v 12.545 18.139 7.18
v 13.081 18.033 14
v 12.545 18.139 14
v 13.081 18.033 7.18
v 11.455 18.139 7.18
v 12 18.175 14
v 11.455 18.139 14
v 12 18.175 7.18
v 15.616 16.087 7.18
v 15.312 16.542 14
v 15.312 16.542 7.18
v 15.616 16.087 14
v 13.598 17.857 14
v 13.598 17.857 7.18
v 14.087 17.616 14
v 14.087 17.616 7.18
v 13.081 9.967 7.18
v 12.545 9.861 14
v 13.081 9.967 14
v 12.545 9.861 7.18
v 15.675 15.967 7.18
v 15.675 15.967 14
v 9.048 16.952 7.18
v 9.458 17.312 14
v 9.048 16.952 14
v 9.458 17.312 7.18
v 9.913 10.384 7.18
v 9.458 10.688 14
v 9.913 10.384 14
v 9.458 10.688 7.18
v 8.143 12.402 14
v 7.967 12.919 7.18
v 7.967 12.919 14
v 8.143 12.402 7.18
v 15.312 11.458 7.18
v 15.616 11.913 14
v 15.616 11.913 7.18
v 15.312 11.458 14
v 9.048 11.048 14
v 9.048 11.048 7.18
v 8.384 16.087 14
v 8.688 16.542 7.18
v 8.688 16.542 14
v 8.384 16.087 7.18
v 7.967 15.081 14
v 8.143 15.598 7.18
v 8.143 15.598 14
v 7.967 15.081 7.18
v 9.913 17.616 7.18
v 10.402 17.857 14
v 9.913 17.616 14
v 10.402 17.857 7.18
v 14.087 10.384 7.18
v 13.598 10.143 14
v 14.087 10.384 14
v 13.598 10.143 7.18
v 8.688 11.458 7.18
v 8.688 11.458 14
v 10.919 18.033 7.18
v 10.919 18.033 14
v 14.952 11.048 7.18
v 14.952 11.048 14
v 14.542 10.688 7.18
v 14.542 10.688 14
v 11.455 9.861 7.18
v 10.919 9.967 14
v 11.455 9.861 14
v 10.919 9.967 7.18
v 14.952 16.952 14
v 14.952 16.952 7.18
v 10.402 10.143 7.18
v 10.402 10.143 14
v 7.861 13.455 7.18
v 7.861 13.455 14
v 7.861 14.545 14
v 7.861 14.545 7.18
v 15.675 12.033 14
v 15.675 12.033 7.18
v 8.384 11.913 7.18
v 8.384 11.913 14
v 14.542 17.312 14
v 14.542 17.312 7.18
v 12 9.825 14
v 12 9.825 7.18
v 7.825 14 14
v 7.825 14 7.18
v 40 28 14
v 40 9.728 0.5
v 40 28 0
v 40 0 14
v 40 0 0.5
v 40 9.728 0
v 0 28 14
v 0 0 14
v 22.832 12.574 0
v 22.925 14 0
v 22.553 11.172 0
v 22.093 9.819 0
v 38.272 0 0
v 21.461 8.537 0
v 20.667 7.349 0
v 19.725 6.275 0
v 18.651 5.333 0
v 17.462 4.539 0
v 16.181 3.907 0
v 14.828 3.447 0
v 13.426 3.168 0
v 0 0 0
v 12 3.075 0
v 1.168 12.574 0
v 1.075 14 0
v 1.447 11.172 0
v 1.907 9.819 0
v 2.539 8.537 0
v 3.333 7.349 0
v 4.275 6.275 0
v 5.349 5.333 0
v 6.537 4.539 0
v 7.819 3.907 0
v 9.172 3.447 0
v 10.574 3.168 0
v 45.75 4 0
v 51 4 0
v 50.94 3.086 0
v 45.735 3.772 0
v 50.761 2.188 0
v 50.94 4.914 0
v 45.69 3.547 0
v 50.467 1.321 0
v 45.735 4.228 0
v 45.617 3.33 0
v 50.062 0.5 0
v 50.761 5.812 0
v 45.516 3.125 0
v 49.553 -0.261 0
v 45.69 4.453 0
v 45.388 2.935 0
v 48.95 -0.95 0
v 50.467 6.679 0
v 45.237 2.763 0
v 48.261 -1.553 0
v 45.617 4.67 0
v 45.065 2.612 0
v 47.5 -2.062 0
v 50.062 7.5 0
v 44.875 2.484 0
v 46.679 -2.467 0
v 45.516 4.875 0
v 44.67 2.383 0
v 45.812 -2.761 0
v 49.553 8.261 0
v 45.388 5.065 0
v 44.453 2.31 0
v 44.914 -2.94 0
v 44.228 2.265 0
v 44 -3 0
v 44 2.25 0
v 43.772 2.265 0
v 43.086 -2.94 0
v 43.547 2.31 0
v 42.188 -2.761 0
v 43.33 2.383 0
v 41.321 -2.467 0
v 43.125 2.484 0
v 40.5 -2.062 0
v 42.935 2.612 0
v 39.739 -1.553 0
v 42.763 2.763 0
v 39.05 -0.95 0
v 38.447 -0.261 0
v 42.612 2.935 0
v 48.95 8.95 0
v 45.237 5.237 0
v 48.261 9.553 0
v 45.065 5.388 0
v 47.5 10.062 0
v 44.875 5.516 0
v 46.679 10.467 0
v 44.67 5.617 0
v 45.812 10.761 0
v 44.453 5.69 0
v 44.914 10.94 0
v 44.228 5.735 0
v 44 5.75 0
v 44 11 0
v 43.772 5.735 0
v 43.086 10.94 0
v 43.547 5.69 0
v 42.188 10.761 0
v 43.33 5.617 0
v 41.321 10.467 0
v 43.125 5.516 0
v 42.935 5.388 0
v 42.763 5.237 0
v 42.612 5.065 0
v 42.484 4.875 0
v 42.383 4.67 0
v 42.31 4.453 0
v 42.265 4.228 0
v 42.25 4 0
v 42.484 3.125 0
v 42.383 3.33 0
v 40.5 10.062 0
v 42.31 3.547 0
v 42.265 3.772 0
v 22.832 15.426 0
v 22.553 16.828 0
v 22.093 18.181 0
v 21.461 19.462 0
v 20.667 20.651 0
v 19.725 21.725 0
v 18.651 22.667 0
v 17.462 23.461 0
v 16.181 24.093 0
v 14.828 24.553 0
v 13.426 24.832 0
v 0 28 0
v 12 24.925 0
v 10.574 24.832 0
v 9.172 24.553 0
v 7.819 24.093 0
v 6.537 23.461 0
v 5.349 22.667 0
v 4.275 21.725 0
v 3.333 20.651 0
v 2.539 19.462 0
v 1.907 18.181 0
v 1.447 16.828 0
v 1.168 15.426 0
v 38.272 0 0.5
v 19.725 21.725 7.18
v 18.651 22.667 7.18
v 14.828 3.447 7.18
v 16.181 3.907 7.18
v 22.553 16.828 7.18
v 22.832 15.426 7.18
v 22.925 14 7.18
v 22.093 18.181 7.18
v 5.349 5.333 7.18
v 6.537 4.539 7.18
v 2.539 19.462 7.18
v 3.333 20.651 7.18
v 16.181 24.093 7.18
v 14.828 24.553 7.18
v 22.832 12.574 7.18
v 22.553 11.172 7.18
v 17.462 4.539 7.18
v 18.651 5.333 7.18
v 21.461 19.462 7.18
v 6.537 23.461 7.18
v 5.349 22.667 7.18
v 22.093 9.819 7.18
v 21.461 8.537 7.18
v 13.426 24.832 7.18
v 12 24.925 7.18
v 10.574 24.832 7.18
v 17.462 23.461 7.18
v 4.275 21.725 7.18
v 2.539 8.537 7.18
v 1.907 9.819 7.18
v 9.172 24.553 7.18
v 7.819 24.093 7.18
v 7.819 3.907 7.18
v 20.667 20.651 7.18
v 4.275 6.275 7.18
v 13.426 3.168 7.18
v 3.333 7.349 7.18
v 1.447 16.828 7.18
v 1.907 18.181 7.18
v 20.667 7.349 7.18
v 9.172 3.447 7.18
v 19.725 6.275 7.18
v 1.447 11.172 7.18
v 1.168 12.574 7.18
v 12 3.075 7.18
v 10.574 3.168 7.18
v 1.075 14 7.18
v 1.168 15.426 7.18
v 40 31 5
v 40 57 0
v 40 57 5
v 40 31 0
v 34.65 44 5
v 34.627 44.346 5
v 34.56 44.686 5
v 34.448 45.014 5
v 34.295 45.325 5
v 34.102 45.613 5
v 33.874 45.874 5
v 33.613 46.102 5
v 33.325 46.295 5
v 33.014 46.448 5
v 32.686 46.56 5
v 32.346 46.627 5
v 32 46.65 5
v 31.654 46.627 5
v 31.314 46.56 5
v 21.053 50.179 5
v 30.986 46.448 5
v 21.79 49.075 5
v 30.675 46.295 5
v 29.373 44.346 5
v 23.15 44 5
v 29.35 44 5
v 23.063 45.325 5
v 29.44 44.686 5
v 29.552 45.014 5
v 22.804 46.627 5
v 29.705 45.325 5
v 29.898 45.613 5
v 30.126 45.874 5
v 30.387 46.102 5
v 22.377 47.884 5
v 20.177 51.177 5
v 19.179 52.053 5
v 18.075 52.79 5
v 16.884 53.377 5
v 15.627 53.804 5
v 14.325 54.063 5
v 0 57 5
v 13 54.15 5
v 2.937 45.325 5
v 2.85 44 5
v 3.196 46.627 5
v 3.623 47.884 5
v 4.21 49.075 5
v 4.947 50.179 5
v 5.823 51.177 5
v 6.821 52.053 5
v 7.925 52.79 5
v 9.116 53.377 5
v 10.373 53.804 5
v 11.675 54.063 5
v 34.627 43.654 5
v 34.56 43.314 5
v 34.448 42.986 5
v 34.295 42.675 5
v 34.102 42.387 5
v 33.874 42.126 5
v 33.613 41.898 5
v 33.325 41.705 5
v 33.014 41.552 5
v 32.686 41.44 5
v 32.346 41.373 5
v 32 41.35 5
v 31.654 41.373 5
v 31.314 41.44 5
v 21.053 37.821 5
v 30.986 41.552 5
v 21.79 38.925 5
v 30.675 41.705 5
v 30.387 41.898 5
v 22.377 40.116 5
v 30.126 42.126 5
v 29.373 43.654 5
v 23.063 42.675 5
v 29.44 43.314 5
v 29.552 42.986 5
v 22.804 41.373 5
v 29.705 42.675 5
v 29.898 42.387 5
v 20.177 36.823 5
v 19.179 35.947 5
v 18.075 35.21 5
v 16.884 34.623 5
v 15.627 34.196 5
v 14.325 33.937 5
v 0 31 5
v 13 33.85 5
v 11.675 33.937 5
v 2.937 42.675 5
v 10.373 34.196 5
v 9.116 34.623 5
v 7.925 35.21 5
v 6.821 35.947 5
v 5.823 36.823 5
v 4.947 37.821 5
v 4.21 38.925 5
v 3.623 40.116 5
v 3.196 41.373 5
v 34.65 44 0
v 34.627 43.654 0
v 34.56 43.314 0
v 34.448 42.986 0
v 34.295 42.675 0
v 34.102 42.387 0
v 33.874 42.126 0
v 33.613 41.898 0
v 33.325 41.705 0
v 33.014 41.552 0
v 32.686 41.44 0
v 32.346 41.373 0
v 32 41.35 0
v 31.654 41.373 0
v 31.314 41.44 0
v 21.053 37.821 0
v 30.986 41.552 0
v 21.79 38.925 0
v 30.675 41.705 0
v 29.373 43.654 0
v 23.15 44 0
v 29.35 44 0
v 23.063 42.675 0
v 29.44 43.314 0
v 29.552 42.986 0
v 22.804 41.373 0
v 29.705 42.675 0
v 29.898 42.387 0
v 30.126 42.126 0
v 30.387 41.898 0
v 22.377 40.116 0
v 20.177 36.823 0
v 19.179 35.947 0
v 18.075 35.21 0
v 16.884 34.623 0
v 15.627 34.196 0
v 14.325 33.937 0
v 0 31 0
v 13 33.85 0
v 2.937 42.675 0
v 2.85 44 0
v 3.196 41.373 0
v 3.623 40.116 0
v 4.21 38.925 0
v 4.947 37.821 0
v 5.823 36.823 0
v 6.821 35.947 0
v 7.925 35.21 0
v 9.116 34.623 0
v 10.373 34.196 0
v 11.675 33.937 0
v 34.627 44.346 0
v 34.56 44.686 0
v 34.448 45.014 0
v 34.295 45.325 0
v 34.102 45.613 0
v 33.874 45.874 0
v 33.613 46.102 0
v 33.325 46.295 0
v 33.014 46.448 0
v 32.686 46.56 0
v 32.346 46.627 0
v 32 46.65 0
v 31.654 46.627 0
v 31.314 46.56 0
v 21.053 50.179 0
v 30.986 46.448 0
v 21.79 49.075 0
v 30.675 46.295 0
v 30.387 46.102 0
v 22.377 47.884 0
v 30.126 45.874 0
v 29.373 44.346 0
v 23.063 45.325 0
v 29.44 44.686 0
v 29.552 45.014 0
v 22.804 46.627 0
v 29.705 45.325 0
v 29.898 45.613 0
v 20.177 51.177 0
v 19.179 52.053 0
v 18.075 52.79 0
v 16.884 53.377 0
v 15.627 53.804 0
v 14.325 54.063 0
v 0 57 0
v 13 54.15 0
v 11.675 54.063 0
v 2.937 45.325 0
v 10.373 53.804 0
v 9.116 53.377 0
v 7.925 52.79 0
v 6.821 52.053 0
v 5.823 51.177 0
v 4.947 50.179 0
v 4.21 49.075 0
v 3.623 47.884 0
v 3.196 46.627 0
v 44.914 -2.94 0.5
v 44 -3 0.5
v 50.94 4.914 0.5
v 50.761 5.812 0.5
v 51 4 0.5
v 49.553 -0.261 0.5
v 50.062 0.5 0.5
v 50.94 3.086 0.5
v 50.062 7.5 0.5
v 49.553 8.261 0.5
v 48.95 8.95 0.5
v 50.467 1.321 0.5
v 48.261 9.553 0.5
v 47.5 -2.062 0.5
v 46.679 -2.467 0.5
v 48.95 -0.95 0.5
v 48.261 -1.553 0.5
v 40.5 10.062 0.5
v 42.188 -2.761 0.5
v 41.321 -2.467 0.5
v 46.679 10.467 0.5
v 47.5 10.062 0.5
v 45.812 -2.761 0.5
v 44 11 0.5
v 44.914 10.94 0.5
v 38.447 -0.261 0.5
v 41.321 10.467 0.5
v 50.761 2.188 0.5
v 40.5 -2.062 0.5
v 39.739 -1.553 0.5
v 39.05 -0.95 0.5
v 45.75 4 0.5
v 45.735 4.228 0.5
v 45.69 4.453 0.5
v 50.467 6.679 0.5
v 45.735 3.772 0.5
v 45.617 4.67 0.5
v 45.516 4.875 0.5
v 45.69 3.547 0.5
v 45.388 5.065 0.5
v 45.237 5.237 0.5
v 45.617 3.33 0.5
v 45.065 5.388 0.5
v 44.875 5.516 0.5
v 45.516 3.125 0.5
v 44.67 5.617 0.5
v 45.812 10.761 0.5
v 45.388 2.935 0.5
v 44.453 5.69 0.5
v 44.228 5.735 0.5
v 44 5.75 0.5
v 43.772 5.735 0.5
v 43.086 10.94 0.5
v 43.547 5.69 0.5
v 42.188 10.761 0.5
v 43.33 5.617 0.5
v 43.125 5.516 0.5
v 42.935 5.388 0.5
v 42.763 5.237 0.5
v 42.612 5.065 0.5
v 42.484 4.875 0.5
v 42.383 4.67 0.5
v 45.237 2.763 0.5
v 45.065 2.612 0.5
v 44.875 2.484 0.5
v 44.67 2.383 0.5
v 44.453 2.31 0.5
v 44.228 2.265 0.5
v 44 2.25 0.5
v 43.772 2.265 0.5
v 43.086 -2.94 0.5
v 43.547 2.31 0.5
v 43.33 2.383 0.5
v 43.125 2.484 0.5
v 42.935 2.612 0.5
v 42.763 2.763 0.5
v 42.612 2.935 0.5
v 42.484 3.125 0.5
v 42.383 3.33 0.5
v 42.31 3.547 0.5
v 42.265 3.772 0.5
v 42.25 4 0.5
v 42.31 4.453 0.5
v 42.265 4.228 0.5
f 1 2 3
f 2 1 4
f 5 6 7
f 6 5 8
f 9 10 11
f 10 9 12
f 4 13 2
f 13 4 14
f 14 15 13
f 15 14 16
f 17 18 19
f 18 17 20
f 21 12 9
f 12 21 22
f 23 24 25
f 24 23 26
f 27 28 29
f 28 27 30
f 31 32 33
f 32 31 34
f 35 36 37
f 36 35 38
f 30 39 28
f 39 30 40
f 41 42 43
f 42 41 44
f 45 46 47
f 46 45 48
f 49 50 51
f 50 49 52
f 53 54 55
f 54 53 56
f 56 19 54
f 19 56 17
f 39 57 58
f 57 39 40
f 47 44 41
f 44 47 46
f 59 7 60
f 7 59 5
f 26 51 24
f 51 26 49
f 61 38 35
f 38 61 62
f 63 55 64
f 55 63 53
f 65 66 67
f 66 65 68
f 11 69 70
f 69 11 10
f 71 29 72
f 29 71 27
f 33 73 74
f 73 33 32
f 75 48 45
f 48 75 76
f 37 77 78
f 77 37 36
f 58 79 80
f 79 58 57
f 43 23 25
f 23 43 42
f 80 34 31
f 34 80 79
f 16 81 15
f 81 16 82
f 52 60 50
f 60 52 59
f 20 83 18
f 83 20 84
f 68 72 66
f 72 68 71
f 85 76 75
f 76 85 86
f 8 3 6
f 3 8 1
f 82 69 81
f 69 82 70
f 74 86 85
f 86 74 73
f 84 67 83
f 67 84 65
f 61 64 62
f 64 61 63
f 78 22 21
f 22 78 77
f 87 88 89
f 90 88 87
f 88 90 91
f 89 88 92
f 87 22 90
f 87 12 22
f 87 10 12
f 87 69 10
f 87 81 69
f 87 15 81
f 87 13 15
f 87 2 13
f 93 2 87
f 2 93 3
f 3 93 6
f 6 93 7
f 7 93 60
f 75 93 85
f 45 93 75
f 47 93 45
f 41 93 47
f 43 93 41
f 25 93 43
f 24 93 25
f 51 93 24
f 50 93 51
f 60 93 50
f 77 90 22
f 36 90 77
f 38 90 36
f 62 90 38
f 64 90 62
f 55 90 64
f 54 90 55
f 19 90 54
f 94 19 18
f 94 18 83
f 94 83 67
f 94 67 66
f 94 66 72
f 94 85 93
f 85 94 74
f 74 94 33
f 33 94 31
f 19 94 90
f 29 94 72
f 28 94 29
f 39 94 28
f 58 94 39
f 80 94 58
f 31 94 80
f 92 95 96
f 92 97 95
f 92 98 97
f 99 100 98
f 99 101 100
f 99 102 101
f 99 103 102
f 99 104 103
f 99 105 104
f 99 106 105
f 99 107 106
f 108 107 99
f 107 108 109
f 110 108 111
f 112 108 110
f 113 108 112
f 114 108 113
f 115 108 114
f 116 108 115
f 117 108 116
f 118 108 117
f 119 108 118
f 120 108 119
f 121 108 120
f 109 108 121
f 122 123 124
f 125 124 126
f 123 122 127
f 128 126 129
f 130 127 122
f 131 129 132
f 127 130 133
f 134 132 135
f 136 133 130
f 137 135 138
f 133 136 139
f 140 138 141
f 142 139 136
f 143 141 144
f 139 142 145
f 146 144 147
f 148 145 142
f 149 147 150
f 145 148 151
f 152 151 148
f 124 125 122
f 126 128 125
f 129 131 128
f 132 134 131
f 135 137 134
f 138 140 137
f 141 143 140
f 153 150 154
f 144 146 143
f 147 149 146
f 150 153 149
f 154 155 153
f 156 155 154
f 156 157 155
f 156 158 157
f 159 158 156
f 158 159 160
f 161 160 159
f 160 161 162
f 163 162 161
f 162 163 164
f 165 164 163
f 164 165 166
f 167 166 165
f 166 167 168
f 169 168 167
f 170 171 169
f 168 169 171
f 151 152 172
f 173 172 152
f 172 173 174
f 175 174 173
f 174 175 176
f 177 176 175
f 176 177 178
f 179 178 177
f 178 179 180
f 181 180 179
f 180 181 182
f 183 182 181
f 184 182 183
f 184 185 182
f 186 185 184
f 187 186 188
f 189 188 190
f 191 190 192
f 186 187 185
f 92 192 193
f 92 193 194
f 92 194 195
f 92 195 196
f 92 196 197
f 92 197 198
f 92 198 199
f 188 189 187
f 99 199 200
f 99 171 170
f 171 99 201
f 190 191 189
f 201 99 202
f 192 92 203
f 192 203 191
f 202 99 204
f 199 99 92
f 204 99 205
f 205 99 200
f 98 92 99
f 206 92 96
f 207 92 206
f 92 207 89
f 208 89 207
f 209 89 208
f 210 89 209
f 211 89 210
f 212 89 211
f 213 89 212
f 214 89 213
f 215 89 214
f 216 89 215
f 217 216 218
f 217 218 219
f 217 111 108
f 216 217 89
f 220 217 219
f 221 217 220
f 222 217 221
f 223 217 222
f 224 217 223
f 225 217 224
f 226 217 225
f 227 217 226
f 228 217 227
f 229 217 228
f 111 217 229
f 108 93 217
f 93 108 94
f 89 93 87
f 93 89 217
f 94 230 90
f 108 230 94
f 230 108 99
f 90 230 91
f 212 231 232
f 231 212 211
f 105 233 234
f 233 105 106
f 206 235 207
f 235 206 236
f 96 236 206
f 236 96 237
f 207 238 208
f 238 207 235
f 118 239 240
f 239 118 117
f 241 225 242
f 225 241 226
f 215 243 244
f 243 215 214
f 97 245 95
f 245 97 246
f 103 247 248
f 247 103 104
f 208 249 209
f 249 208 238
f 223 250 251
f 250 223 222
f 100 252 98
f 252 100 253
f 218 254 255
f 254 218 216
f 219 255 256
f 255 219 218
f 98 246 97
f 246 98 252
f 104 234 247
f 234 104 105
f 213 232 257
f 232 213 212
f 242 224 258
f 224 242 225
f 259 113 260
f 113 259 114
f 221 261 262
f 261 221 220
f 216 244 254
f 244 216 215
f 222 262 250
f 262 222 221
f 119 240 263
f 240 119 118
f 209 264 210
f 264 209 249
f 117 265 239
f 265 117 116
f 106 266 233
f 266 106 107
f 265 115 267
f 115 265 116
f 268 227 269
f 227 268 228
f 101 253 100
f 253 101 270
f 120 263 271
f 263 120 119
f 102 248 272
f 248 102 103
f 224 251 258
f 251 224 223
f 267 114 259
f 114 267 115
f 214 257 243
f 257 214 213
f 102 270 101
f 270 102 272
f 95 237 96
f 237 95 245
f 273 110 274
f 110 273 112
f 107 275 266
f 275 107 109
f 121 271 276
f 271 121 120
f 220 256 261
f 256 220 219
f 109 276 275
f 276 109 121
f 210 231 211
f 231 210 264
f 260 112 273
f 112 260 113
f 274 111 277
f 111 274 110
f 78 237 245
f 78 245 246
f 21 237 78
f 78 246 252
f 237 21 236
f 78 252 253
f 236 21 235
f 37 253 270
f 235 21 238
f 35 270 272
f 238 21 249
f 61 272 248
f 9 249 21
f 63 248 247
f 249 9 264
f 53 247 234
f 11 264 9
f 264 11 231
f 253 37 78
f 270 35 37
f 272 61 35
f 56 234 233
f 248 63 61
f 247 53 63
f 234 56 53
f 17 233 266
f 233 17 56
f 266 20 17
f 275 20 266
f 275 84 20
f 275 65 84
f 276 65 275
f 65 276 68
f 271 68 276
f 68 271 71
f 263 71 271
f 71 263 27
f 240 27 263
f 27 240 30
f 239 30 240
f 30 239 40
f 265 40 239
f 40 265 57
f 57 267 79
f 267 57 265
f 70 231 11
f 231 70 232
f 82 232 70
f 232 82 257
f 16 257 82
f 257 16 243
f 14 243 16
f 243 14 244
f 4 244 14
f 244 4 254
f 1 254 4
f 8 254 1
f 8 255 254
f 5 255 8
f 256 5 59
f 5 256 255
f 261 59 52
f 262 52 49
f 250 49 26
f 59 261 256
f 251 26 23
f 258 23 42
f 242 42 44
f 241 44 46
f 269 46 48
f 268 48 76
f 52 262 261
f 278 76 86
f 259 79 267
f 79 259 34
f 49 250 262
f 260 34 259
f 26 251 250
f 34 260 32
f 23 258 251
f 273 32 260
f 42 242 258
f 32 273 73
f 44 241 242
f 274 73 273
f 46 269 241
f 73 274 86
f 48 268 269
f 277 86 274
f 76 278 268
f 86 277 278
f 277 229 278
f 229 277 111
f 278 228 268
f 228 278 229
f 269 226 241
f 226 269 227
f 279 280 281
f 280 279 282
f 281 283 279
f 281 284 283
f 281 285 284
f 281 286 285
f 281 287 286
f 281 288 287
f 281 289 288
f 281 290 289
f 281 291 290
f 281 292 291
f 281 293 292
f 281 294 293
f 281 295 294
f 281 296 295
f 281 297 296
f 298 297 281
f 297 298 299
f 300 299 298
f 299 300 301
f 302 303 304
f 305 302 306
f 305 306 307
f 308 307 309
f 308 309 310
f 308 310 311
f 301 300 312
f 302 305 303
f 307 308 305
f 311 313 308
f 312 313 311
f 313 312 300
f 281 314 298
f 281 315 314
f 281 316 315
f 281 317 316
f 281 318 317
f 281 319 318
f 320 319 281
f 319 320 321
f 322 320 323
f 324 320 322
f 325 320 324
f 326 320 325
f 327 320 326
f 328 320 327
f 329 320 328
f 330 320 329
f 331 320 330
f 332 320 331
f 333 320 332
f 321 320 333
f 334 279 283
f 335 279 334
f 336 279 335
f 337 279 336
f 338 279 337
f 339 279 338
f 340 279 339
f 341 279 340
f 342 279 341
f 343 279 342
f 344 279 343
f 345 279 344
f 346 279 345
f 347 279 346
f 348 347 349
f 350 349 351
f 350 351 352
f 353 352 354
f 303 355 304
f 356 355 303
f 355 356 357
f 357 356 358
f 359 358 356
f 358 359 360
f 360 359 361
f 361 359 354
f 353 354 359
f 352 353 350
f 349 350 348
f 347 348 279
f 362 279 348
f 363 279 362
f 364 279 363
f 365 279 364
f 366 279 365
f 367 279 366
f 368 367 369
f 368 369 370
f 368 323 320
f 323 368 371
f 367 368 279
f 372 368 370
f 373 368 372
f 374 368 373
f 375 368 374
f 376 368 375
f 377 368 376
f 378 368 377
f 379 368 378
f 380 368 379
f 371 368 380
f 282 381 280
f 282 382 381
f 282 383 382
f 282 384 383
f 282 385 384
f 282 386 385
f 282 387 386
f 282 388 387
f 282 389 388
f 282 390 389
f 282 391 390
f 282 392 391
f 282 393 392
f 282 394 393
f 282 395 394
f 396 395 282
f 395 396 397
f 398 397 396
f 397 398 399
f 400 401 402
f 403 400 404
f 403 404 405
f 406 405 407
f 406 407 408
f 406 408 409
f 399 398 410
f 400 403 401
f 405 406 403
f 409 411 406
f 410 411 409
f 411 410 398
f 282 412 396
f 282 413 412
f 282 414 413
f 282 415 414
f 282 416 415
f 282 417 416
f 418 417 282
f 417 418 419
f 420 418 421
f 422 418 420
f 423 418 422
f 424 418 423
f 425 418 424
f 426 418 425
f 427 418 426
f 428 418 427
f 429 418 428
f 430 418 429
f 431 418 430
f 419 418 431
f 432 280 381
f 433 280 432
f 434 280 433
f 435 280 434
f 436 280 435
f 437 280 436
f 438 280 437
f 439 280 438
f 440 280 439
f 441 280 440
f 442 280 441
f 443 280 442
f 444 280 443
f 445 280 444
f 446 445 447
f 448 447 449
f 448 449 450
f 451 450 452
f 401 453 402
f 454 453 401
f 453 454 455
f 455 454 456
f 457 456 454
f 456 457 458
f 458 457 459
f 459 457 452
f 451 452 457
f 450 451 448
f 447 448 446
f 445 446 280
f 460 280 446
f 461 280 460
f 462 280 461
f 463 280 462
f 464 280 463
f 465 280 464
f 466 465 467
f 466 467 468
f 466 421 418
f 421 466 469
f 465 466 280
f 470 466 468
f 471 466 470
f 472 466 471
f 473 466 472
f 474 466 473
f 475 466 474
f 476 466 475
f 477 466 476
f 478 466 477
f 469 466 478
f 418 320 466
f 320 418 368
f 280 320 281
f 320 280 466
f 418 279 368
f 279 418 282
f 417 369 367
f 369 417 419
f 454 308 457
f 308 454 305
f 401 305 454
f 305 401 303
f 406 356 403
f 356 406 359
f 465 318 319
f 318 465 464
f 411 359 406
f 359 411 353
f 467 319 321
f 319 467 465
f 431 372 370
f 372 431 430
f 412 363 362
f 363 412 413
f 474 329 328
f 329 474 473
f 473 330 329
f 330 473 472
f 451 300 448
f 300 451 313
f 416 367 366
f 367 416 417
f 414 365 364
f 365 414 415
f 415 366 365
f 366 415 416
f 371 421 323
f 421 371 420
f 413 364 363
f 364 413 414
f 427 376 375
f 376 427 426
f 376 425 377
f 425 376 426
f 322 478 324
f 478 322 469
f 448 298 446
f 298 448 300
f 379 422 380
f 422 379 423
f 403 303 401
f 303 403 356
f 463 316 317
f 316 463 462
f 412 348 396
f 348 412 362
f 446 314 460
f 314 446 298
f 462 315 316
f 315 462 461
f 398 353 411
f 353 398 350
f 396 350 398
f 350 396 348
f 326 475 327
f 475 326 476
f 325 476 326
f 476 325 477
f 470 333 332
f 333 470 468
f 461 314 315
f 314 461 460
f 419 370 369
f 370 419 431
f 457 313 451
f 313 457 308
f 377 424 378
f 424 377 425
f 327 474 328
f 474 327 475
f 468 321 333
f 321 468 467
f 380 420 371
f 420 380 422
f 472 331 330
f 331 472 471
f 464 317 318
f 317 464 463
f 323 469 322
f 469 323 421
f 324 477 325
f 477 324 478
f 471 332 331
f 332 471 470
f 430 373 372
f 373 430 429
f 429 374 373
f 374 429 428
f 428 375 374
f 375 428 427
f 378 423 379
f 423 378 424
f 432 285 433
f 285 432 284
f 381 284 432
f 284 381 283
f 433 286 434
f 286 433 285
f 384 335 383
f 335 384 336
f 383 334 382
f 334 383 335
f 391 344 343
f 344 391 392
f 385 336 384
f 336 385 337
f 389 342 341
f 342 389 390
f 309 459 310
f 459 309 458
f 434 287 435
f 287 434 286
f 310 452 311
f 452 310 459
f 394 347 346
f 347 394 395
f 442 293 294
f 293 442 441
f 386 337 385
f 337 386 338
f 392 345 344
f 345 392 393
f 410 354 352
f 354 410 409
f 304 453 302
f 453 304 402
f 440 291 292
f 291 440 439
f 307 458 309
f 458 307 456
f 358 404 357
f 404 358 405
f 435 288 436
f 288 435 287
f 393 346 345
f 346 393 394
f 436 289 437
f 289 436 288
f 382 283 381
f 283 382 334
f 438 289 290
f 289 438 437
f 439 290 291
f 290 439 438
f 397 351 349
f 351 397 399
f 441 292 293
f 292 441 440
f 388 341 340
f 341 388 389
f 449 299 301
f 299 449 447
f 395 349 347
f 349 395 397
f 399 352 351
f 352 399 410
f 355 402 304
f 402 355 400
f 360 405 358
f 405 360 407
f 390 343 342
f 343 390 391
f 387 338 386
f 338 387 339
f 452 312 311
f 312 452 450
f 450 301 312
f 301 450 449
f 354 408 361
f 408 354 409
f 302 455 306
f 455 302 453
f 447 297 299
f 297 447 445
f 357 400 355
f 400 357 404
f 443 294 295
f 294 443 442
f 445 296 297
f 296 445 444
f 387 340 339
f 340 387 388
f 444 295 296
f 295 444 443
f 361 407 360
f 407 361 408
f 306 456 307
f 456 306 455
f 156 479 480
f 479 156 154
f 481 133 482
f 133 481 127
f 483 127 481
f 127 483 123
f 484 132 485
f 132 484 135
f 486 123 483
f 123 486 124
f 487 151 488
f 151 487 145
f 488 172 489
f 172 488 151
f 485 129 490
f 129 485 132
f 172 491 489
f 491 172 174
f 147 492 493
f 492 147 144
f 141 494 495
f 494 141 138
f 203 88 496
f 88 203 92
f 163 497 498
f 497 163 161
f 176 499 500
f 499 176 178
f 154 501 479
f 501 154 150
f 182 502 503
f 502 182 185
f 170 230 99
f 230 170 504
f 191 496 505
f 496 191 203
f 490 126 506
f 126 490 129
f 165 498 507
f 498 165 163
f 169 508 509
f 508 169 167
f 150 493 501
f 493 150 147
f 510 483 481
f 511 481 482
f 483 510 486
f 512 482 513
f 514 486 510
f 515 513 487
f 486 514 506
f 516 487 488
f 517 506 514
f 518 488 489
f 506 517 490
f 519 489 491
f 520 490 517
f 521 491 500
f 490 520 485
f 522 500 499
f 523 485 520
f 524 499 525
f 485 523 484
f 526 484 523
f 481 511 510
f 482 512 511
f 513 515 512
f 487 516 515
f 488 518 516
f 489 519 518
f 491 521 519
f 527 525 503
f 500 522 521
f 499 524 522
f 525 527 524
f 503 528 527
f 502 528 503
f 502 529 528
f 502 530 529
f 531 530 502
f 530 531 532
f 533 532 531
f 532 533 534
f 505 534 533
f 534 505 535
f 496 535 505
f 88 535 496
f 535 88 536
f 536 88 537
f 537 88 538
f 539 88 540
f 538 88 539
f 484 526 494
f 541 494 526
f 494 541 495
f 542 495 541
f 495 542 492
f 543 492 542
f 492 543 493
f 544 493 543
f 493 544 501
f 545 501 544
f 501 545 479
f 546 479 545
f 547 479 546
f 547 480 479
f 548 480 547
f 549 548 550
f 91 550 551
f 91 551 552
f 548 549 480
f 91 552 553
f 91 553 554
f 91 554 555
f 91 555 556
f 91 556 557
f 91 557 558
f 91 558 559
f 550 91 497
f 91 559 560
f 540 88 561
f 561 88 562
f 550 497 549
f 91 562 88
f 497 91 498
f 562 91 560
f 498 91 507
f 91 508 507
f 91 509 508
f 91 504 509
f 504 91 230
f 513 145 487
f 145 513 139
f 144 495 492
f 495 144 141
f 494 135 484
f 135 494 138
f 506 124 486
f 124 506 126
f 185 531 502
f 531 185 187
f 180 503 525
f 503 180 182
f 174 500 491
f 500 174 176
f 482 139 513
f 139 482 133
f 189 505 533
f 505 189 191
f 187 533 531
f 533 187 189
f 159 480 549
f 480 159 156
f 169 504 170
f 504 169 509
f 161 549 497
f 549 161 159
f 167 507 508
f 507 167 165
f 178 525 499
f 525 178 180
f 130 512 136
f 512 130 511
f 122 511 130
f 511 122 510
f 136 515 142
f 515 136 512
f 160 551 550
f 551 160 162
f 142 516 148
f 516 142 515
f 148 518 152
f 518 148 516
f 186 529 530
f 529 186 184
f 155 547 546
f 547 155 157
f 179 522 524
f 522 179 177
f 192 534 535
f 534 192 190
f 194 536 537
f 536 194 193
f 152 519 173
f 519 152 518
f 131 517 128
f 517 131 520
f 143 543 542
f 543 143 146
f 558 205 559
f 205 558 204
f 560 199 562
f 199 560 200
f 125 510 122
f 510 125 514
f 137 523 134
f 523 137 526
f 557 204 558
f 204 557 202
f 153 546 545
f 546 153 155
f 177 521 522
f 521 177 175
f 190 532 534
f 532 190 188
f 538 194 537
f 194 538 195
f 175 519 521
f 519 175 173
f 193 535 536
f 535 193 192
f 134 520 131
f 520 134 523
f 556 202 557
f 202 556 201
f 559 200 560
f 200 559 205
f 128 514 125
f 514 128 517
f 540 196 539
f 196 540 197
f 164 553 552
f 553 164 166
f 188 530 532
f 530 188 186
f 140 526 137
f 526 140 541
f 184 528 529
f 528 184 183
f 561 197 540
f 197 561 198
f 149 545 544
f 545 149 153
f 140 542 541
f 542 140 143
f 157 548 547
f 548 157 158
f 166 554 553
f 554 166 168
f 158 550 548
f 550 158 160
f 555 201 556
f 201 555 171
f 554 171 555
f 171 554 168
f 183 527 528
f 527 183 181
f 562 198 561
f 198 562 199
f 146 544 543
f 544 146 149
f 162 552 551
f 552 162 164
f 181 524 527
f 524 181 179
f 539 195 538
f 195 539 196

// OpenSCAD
// file: parameters.scad
// =============================================================================
// Gen-BZ — nightly 2026-10-11 (physics_scorer, honest magpylib watts)
// Minimum-gap, wire-saver stator for the Gen-BX rotors: only 5.4 mm of copper (12 layers), so the magnet faces are just 8.0 mm apart and peak Bz at the copper reaches ≈0.64 T. It holds ~20 % less copper than Gen-BX (≈300 m, leaving ~90 m of the spool spare and much less winding), and loses only ≈5.5 % of the watts vs Gen-BX — the best watts-per-metre of wire tonight.
// Clocking 0 deg (magnets N facing S) + D-flat keyed bore + index notch + flip-symmetric hole map.
// Windable 2-piece bobbin; turns = physics_scorer turns_fit; copper only between flanges.
// Steel back-iron: 2× Ø168 × 4.76 mm (3/16") mild-steel discs (steel_backiron_disc.dxf); magnets sit ON the steel
// (through-pockets) -> score with --back-iron. Night 2026-10-11.
// =============================================================================
topology            = "dual_rotor";

// --- Wire / winding (physics_scorer winding-fit) -------------------------------
wire_awg            = 26;
wire_od             = 0.45;     // insulated OD mm (bare 0.405)
fill_realistic      = 0.65;     // insulated-wire area / window (DENSE layered wind with a jig; scorer cap 0.65)
turns               = 328;       // = physics_scorer turns_fit (do NOT raise)
coil_former_type    = "bobbin";
coil_core_inset     = 14.87;     // radial copper build: hub = copper boundary inset by this
wind_build_axial    = 0.0;      // nothing proud of the flanges
wind_build_radial   = 0.0;

// --- Bobbin (base + lid) ---------------------------------------------------------
coil_id_r           = 53.00;    // copper boundary sector
coil_od_r           = 88.00;
span_deg            = 26.43;    // = pitch - 2*asin((wall+0.85)/coil_id_r) -> >=1.2 mm stator web
former_web          = 5.40;     // copper height between flanges (TALL copper: steel keeps Bz up)
flange_t            = 0.80;     // >= 0.8 mm FDM wall rule (tall winds push on the flanges)
wall                = 0.80;     // flange lip beyond copper
former_bare_h       = former_web + 2 * flange_t;
coil_envelope_h     = former_bare_h + 2 * wind_build_axial;
tab_w               = 7.0;
tab_len             = 7.0;
tab_h               = former_bare_h / 2;
pin_d               = 1.9;      // 1.75 mm filament locating pin
coil_mount_r        = coil_od_r + 0.2 + 4.0;
lead_y              = 1.6;
lead_slot_w         = 0.9;
lead_groove_d       = 0.6;

// --- Gap -------------------------------------------------------------------------
run_clear           = 0.50;     // rotor face -> flange
gap_spacer_h        = run_clear + wind_build_axial;
m2m                 = coil_envelope_h + 2 * run_clear;   // rotor face to rotor face (= gap_sleeve length)

// --- Stator ----------------------------------------------------------------------
coil_stations       = 12;
bay_clear           = 0.25;
stator_thick        = former_bare_h;                        // bobbins flush both faces
stator_od           = 194;
shaft_clear_stator  = 14.0;     // stator is static; gap sleeve OD 12 spins inside

// --- Rotor(s) --------------------------------------------------------------------
magnet_Br           = 1.43;     // N52
magnet_d_large      = 20.0;
magnet_h_large      = 5.0;      // one O20x5 per pocket
magnet_h_small      = 5.0;      // unused: no O5 pockets in this kit
halbach_magnetisation = "none";  // NO O5 assist magnets in this kit (scan: they lower the 4-pole score)
rotor_b_same_axis   = true;     // same-index magnets share one axis: N faces S across the gap
large_pocket_d      = 20.3;
small_pocket_d      = 5.3;
pocket_h            = 5.00;     // THROUGH the carrier: magnet back face sits on the steel disc (FLUSH seat: carrier = magnet height, magnet face level with the rotor face)
large_n             = 8;
R_large             = 71.0;
small_r_list        = [];       // no O5 pockets
carrier_od          = 168.0;
carrier_thick       = pocket_h;
hub_h               = 12.0;     // > steel_t + insert: radial set-screw clears the steel
hub_od              = 24.0;     // slim hub so the M4 brace rods fit at R~18 inside the coil ring
hub_insert_d        = 4.0;      // M3 heat-set insert, radial, bears on the D-flat
rotor_b_offset_deg  = 0.0;      // CLOCKING: magnets directly opposite
shaft_key           = "dflat";
dflat_depth         = 0.5;      // 8 mm shaft with 0.5 mm flat (7.5 across flat)
index_notch_d       = 3.0;

// --- Steel back-iron (buyable laser-cut) -------------------------------------------
steel_t             = 4.76;      // mild steel thickness (image method ignores it; sized from steel_flux.py so the return path stays well below saturation)
steel_center_hole   = 26.0;     // slips over the rotor hub (OD 24)
steel_od            = carrier_od;   // steel disc OD = rotor carrier OD

// --- Modular MAX interface ----------------------------------------------------------
shaft_bore          = 8.35;
dflat_x             = 4.0 - dflat_depth + (shaft_bore - 8.0) / 2;
bearing_d           = 21.85;
bearing_h           = 7.2;
m3_clear            = 3.5;
bolt_r_inner        = 30.0;     // M3 steel-disc clamp bolts (inside the magnet ring)
bolt_n_inner        = 4;
bolt_inner_angles   = [0, 90, 180, 270];
bolt_r_outer        = 44.0;     // second M3 steel-disc clamp ring
bolt_outer_angles   = [67.5, 112.5, 247.5, 292.5];
flange_bolt_r       = 91.5;     // frame rods: OUTSIDE the rotor OD (rotors spin inside them)
flange_bolt_n       = 4;
flange_bolt_offset  = 45.00;    // between coil stations -> never cuts a lead groove/tab
brace_r             = 18.0;
brace_d             = 4.3;      // temporary M4 jack rods (assembly only)
brace_n             = 4;
brace_angles        = [45, 135, 225, 315];          // flip-symmetric

spacer_pad_od       = 14.0;
spacer_pad_id       = m3_clear;
endbell_od          = 193.0;
endbell_thick       = 8.0;
endbell_shaft_clear = 10.0;
collar_h            = 10.0;
standoff_od         = 9.0;
frame_standoff_h    = run_clear + carrier_thick + hub_h + collar_h + 2.0;
sleeve_od           = 12.0;
plate_max_mm        = 410;

$fn = 64;
// main file
// Gen-BZ — fit coupon: O20/O5 THROUGH pockets at carrier thickness (test on a steel offcut), 608 seat,
// D-flat bore, gap shim, and one bobbin-bay slice (bobbin footprint + bay_clear) to test former fit.
include <parameters.scad>;
$fn = 48;
// D-flat keyed bore: flat faces +X (angle 0 = magnet pocket 0 = index notch)
module dflat_bore(h) {
    intersection() {
        cylinder(d=shaft_bore, h=h);
        translate([-shaft_bore, -shaft_bore, 0]) cube([shaft_bore + dflat_x, 2*shaft_bore, h]);
    }
}
module sector_2d(r_in, r_out, ang) {
    polygon([
        for (a = [-ang/2 : ang/24 : ang/2]) [r_in*cos(a), r_in*sin(a)],
        for (a = [ang/2 : -ang/24 : -ang/2]) [r_out*cos(a), r_out*sin(a)]
    ]);
}
module footprint_2d() { offset(r=wall) sector_2d(coil_id_r, coil_od_r, span_deg); }
module hub_2d()       { offset(delta=-coil_core_inset) sector_2d(coil_id_r, coil_od_r, span_deg); }

block_w = 40; block_d = 28; block_h = 14;
difference() {
    cube([block_w, block_d, block_h]);
    translate([12, block_d/2, -0.02]) cylinder(d=bearing_d, h=bearing_h);
    translate([12, block_d/2, -0.1]) dflat_bore(block_h + 1);
}
translate([0, block_d + 3, 0]) difference() {
    cube([40, 26, carrier_thick]);
    translate([13, 13, -0.1]) cylinder(d=large_pocket_d, h=carrier_thick + 0.2);
    translate([32, 13, -0.1]) cylinder(d=small_pocket_d, h=carrier_thick + 0.2);
}
translate([block_w + 4, 4, 0])
    difference() {
        cylinder(d=spacer_pad_od, h=gap_spacer_h);
        translate([0, 0, -0.1]) cylinder(d=spacer_pad_id, h=gap_spacer_h + 0.2);
    }
